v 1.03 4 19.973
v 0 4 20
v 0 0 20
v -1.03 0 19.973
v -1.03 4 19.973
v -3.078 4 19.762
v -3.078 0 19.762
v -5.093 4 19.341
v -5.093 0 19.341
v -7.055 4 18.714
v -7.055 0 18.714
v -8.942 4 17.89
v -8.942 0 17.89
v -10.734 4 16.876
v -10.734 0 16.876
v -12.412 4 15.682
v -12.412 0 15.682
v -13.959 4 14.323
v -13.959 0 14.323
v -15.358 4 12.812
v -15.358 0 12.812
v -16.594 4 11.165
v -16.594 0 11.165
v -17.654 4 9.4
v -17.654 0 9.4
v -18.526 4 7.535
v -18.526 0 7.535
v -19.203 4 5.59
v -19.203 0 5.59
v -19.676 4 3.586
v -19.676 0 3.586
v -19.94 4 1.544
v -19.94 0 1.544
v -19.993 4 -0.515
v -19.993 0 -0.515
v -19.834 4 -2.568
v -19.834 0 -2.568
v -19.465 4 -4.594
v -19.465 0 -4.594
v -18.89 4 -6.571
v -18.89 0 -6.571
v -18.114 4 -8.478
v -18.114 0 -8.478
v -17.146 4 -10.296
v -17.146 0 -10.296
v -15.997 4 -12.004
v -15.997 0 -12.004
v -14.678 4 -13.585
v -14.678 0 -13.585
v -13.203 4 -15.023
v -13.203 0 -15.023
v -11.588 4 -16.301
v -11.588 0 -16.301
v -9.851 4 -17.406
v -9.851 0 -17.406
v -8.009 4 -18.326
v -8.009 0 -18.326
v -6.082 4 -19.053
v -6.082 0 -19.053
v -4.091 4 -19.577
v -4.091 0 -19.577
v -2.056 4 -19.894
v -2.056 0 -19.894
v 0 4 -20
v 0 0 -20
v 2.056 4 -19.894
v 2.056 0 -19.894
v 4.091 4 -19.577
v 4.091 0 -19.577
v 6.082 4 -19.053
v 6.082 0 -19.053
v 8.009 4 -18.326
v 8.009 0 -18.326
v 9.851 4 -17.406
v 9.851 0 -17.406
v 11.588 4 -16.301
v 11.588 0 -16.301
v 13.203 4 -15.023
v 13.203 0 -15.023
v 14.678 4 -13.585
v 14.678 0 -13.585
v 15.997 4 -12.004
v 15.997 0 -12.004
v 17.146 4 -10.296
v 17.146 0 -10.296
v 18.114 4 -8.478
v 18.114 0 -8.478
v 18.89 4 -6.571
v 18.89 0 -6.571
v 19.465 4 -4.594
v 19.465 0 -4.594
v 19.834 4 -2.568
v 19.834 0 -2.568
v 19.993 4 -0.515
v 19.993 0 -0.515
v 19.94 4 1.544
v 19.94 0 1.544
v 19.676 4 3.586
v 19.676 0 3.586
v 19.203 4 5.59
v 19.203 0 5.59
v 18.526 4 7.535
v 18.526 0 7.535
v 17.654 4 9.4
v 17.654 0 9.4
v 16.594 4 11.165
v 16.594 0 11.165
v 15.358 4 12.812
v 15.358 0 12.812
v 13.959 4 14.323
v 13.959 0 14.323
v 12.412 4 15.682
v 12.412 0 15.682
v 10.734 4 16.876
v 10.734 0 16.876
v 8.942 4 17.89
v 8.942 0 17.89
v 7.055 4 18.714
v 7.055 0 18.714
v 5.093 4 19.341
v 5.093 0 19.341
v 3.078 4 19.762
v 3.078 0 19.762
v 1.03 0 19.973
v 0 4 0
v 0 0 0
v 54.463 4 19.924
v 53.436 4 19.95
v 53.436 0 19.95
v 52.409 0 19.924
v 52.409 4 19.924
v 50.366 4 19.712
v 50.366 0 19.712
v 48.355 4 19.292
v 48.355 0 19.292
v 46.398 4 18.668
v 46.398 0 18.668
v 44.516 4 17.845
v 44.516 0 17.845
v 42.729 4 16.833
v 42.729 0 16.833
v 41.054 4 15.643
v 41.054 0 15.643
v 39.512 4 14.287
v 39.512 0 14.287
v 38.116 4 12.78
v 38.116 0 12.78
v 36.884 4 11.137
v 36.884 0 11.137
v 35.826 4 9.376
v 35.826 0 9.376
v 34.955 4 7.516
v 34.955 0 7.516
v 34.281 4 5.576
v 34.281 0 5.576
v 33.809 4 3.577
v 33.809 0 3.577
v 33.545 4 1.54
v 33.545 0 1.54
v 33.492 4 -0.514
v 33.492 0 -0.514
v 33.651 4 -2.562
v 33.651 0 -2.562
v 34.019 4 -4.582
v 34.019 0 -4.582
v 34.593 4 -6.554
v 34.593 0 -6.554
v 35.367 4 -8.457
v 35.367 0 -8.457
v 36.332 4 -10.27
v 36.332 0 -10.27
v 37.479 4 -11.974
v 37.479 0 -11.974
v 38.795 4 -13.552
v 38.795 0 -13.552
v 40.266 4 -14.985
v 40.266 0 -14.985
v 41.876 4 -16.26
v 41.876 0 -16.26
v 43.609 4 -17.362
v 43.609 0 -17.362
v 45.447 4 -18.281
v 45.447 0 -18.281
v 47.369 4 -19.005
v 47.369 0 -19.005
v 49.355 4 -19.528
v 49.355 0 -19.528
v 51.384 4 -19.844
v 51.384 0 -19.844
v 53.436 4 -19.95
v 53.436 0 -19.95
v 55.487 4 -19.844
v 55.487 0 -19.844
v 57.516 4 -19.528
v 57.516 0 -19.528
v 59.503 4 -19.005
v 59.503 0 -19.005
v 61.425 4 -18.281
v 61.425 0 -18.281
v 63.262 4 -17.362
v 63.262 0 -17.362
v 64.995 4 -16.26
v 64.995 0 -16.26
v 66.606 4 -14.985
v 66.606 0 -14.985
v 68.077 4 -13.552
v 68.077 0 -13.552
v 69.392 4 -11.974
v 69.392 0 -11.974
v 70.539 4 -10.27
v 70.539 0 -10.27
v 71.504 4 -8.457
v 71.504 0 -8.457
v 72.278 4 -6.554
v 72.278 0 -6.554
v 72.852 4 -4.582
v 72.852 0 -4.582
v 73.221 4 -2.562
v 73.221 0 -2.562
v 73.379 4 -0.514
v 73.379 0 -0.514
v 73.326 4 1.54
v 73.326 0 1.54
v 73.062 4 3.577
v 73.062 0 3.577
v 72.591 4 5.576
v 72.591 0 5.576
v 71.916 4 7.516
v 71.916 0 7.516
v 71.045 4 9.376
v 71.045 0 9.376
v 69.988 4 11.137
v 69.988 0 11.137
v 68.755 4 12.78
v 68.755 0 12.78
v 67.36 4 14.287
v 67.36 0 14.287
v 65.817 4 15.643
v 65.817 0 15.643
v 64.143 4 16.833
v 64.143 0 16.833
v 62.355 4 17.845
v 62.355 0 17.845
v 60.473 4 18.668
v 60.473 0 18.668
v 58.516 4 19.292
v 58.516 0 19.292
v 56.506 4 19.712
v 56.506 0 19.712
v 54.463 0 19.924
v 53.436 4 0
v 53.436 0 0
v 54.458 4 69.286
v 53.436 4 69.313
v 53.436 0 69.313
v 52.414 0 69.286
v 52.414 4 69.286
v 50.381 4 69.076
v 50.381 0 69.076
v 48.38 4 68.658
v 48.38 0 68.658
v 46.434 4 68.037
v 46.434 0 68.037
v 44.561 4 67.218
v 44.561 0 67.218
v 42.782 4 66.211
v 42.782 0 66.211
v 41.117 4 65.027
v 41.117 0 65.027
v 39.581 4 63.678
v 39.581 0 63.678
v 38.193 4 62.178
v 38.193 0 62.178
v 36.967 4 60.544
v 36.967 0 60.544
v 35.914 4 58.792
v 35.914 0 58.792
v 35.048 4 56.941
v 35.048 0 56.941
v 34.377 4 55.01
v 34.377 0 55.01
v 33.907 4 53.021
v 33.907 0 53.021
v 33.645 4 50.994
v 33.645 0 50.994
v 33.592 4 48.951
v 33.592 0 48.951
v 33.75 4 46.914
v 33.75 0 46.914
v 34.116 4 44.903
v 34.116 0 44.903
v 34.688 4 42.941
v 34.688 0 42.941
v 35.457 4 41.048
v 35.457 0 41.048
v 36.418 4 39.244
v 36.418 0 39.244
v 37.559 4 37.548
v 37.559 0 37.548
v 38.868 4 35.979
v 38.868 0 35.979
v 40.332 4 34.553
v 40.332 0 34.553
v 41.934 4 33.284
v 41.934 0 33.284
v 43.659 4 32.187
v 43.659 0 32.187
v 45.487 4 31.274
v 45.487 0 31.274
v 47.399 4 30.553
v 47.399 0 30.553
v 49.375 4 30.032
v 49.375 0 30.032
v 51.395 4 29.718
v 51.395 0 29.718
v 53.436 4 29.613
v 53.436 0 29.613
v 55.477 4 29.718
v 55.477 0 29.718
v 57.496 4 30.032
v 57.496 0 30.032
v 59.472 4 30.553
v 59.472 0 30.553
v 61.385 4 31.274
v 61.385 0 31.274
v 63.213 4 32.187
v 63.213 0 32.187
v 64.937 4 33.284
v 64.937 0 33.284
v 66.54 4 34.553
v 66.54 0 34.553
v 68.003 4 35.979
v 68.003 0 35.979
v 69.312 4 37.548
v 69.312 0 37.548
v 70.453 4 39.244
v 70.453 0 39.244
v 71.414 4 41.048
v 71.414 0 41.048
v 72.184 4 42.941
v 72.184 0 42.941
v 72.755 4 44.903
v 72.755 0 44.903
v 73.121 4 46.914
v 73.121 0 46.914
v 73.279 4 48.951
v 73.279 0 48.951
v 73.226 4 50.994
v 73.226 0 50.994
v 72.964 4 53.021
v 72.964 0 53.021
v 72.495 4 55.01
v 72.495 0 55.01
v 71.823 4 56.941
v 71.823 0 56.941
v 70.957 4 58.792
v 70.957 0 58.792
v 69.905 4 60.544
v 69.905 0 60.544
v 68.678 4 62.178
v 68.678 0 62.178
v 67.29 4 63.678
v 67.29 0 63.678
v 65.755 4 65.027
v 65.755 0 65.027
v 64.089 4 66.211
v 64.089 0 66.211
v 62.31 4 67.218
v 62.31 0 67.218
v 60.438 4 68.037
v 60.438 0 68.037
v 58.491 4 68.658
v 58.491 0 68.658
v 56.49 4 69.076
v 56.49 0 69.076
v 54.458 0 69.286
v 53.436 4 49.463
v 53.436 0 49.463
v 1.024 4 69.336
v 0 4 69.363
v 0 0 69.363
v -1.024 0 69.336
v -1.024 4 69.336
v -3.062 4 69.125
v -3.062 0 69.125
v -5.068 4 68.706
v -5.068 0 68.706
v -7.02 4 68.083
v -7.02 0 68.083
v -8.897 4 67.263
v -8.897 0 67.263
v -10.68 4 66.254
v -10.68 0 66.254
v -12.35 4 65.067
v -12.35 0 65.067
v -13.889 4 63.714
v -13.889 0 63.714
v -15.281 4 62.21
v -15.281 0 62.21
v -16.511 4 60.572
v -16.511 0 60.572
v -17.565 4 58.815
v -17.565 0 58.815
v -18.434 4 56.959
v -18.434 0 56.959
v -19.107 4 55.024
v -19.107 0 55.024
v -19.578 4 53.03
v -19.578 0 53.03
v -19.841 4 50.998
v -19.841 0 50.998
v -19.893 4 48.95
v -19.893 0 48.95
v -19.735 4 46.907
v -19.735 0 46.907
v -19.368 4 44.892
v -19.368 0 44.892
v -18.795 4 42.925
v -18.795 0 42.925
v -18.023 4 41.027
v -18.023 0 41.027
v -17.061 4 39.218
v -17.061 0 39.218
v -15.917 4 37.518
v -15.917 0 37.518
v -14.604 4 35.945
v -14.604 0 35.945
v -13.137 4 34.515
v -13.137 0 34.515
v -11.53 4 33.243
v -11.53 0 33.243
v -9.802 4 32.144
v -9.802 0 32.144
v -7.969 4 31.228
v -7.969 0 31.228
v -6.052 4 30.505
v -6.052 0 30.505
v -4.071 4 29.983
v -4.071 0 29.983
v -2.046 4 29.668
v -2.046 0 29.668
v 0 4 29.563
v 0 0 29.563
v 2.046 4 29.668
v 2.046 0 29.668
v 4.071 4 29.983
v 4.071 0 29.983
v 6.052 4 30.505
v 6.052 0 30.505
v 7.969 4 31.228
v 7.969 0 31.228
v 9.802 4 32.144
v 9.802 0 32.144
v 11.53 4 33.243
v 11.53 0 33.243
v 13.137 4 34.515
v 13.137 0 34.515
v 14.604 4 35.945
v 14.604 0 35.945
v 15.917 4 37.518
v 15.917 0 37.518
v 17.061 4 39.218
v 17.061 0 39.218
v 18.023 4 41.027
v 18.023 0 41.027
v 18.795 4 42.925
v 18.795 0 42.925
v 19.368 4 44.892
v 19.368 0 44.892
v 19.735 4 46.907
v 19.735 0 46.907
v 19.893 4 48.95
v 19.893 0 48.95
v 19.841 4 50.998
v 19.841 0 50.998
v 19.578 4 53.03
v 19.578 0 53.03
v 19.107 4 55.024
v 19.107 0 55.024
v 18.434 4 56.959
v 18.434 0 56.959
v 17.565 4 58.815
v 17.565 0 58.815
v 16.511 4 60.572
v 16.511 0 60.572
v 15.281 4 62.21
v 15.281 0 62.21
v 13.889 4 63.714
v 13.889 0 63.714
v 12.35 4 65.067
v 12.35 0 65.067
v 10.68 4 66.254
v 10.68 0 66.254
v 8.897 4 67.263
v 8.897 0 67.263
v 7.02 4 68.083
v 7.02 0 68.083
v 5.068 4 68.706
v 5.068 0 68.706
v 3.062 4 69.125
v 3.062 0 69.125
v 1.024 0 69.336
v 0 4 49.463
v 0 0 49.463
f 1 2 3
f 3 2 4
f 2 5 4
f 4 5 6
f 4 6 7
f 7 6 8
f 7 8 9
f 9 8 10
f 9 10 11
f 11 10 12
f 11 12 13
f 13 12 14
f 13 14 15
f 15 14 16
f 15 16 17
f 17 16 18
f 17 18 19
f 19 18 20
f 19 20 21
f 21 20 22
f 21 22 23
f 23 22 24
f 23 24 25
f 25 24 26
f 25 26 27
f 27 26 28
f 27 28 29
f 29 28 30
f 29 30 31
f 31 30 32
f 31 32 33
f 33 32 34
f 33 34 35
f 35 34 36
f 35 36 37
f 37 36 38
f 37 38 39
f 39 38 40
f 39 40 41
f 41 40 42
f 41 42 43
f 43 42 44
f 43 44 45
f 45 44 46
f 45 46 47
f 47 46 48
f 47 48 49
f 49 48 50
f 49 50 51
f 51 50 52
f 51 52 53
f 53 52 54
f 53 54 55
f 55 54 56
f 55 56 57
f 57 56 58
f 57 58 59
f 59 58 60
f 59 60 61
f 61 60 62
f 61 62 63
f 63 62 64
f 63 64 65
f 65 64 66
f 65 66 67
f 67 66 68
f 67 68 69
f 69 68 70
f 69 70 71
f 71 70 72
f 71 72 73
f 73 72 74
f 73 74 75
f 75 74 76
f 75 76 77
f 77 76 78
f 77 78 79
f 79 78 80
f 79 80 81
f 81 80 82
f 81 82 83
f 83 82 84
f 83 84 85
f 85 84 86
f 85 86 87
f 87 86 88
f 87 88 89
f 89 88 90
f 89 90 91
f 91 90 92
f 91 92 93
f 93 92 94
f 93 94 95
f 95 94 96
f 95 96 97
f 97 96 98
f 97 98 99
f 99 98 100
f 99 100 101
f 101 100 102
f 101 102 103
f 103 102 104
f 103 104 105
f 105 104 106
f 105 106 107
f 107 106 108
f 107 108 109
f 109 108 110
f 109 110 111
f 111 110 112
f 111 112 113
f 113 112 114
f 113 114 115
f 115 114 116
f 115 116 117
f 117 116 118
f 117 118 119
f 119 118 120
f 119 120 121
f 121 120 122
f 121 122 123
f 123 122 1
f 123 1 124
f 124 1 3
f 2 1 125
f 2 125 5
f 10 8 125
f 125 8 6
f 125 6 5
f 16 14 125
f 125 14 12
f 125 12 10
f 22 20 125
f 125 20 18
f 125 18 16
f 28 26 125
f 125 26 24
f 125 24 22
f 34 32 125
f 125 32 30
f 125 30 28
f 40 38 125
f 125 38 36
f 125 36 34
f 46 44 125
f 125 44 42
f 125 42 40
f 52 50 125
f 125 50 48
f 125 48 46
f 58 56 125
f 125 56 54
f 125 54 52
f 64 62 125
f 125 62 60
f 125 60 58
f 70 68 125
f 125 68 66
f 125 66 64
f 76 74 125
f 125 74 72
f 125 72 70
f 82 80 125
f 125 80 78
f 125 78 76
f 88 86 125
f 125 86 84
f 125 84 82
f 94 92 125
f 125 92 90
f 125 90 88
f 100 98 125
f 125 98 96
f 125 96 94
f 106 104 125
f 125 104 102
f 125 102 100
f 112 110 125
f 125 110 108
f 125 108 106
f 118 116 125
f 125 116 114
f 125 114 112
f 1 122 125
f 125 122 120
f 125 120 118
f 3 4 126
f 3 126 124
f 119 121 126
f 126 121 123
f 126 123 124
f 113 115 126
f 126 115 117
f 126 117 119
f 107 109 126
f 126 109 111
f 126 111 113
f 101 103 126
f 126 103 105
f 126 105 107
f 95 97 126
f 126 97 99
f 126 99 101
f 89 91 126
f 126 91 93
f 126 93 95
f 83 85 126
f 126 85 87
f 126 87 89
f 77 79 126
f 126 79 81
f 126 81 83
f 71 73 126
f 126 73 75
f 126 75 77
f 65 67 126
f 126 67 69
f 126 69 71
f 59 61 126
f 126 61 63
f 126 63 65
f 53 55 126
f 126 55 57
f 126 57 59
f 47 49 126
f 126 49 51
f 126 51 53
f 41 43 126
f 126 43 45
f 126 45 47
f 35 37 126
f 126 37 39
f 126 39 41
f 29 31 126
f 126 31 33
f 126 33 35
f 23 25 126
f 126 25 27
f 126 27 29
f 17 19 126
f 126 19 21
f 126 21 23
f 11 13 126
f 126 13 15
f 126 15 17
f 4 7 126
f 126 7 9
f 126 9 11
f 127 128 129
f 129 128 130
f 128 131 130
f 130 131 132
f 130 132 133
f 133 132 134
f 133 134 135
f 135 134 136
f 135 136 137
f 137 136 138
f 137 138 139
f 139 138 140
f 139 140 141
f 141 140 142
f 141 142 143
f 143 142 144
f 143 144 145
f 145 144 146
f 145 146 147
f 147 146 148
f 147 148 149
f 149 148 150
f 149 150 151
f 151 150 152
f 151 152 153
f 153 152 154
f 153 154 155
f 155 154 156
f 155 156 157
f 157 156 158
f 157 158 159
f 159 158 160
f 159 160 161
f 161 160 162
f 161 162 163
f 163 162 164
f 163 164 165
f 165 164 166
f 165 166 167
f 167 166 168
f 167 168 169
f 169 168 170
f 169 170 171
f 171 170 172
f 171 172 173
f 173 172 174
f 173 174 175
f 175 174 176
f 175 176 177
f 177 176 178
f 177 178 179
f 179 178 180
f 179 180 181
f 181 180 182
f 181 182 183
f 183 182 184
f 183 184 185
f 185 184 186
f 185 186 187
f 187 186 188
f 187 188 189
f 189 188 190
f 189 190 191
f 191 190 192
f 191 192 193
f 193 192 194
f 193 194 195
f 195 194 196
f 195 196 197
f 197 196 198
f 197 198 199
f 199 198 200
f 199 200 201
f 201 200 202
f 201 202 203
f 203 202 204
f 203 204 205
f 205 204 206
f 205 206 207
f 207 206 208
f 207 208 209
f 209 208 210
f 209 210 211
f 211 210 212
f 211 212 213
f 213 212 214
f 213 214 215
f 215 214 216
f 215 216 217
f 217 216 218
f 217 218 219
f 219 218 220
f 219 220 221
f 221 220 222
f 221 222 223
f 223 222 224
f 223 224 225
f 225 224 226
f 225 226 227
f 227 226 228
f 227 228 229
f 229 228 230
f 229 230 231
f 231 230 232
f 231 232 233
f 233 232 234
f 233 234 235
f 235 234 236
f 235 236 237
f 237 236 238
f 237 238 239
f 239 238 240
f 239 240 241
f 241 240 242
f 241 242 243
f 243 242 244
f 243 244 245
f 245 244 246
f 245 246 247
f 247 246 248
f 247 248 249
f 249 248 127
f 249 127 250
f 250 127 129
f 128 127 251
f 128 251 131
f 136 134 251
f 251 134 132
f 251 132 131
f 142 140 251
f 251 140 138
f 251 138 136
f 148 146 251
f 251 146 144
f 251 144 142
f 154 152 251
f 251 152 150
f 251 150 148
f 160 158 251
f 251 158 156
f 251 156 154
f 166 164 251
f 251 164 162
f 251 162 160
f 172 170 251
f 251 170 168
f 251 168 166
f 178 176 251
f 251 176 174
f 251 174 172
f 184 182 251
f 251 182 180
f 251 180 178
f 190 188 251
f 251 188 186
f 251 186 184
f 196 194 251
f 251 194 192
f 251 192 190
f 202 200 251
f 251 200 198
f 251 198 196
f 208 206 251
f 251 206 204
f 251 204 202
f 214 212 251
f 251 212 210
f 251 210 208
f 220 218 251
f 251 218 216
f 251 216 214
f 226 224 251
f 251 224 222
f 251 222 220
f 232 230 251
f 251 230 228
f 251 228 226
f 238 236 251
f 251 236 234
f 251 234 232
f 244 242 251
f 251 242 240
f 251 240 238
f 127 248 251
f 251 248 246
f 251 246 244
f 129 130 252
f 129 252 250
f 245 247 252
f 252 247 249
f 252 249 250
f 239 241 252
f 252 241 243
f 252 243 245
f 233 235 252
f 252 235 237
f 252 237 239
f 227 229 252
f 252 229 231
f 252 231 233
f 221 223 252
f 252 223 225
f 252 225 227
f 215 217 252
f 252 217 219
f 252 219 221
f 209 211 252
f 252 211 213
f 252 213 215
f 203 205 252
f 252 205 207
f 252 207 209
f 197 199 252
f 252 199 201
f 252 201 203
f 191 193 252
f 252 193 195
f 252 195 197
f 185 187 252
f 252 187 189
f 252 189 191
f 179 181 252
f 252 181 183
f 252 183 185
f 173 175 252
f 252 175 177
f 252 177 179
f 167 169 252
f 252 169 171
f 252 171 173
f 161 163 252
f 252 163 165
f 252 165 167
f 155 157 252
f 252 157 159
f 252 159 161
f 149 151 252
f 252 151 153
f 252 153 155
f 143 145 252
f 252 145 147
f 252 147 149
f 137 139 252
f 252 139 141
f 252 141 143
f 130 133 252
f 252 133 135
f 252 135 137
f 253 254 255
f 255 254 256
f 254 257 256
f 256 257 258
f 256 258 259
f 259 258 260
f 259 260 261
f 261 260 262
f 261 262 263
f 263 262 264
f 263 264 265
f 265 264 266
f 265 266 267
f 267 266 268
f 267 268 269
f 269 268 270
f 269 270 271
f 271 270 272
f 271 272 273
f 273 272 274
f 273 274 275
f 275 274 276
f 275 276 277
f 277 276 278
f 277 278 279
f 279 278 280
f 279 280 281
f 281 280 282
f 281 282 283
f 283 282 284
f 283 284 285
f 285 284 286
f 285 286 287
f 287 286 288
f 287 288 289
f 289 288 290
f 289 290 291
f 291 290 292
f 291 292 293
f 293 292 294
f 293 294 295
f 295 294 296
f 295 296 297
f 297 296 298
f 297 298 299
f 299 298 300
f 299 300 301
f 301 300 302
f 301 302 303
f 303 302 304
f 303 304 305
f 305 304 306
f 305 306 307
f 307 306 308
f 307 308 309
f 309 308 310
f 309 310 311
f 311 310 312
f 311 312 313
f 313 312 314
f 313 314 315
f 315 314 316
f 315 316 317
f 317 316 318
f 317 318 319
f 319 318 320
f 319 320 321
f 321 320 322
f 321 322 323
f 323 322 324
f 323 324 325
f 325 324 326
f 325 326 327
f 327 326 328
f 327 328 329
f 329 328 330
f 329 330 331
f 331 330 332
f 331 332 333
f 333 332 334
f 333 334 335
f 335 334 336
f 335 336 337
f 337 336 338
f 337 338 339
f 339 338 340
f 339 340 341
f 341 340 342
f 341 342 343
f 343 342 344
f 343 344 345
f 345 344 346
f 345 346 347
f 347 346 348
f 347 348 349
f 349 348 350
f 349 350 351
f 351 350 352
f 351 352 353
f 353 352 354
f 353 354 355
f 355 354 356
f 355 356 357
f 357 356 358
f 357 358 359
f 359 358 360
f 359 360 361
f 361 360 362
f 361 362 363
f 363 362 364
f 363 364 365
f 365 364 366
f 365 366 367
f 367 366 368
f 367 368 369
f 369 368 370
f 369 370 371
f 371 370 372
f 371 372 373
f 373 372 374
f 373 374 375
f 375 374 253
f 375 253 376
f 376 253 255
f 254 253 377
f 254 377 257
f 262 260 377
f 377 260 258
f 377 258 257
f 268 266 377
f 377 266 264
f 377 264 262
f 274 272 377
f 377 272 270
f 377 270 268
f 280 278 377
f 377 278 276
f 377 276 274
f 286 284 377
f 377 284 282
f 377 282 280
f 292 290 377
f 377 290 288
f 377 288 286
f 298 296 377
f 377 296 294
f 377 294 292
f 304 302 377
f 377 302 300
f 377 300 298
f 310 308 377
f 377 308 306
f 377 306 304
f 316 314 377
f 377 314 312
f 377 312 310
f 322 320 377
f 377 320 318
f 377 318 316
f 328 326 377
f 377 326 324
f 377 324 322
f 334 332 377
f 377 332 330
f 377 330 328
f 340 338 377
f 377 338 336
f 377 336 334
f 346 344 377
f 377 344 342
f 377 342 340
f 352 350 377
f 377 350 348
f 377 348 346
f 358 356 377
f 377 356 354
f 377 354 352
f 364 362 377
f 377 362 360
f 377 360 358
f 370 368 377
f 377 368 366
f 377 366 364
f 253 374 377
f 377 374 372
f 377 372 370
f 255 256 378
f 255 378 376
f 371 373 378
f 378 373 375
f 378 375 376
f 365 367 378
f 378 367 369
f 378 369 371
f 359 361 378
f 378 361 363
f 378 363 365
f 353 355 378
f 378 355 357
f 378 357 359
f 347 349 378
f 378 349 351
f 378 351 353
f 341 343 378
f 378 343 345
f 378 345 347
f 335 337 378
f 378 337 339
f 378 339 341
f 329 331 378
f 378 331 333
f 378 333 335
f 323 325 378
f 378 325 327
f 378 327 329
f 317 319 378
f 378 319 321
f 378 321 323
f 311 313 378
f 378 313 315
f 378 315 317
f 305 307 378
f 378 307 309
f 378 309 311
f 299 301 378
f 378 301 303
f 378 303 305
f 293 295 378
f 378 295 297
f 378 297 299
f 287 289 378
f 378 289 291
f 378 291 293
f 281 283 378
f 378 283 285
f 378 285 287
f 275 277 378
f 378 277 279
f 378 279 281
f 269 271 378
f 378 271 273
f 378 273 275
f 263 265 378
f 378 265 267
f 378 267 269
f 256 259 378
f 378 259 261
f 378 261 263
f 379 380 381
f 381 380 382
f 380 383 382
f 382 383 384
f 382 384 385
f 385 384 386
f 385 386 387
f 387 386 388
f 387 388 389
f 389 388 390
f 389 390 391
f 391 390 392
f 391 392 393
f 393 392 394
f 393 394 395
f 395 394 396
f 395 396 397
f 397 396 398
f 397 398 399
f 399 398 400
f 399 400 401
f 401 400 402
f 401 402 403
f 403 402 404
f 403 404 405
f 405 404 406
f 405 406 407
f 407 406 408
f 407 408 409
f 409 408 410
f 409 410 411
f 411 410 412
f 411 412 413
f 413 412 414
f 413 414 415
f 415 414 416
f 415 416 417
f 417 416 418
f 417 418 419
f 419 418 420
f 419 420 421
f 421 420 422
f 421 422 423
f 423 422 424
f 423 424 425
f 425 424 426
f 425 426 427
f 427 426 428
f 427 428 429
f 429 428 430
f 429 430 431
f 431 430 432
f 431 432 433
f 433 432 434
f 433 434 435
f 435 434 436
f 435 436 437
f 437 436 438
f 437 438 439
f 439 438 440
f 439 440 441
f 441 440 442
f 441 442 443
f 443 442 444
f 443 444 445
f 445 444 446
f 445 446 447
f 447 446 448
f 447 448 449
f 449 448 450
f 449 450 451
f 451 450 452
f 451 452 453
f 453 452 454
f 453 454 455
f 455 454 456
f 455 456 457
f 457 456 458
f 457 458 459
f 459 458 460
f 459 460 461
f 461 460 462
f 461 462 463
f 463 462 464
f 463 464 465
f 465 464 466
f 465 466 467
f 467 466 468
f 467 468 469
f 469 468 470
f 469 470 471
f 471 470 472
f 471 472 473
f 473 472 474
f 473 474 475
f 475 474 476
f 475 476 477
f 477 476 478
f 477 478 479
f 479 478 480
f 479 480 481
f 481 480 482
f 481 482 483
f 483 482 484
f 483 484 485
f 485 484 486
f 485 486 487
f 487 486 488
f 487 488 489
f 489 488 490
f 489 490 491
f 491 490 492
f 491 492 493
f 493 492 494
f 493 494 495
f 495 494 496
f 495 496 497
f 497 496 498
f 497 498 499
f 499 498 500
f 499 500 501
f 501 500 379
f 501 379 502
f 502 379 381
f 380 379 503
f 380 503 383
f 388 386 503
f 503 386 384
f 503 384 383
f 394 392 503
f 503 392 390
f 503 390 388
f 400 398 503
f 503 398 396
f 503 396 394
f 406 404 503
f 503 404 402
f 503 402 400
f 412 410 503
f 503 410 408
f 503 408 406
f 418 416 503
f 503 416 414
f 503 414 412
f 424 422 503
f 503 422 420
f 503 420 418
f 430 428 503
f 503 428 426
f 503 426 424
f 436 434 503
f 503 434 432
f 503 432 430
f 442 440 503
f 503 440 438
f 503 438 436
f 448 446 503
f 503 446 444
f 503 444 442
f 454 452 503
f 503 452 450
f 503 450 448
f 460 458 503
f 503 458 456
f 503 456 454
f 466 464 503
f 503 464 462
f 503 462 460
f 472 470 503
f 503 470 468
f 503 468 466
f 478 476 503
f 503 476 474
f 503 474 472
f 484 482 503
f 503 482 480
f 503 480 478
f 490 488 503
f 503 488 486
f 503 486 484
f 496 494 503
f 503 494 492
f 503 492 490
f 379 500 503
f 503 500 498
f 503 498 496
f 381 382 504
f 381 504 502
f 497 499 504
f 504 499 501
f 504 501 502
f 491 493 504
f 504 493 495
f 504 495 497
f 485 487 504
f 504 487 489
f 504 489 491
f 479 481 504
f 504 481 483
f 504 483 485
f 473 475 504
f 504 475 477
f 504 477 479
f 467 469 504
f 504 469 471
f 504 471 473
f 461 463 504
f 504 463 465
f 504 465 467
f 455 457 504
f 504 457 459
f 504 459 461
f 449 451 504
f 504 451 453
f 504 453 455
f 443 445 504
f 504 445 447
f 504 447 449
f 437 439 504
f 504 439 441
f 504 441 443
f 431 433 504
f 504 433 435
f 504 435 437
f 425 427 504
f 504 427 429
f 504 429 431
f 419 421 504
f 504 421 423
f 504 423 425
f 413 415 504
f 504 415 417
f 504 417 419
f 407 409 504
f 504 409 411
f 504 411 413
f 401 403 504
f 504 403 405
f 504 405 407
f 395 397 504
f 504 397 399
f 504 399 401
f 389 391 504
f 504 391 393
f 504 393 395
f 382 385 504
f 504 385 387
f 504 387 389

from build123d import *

# Parameters (mm, degrees)
SKETCH1_R             = 20
BOSS_EXTRUDE1_DEPTH   = 4
SKETCH1_R_2           = 19.95
BOSS_EXTRUDE1_2_DEPTH = 4
SKETCH1_R_3           = 19.85
BOSS_EXTRUDE1_3_DEPTH = 4
SKETCH1_R_4           = 19.9
BOSS_EXTRUDE1_4_DEPTH = 4


with BuildPart() as part:
    # Sketch1 → Boss-Extrude1 (new body)
    with BuildSketch(Plane(origin=(0, 0, 0), x_dir=(1, 0, 0), z_dir=(0, 1, 0))):
        with Locations(Location((0, 0, 0), (0, 0, 270))):
            Circle(SKETCH1_R)
    extrude(amount=BOSS_EXTRUDE1_DEPTH)


with BuildPart() as body_2:
    # Sketch1 → Boss-Extrude1 2 (new body)
    with BuildSketch(Plane(origin=(0, 0, 0), x_dir=(1, 0, 0), z_dir=(0, 1, 0))):
        with Locations(Location((53.435659189, 0, 0), (0, 0, 270))):
            Circle(SKETCH1_R_2)
    extrude(amount=BOSS_EXTRUDE1_2_DEPTH)


with BuildPart() as body_3:
    # Sketch1 → Boss-Extrude1 3 (new body)
    with BuildSketch(Plane(origin=(0, 0, 0), x_dir=(1, 0, 0), z_dir=(0, 1, 0))):
        with Locations(Location((53.435659189, -49.462529873, 0), (0, 0, 270))):
            Circle(SKETCH1_R_3)
    extrude(amount=BOSS_EXTRUDE1_3_DEPTH)


with BuildPart() as body_4:
    # Sketch1 → Boss-Extrude1 4 (new body)
    with BuildSketch(Plane(origin=(0, 0, 0), x_dir=(1, 0, 0), z_dir=(0, 1, 0))):
        with Locations(Location((0, -49.462529873, 0), (0, 0, 270))):
            Circle(SKETCH1_R_4)
    extrude(amount=BOSS_EXTRUDE1_4_DEPTH)


solid = Compound([part.part, body_2.part, body_3.part, body_4.part])
